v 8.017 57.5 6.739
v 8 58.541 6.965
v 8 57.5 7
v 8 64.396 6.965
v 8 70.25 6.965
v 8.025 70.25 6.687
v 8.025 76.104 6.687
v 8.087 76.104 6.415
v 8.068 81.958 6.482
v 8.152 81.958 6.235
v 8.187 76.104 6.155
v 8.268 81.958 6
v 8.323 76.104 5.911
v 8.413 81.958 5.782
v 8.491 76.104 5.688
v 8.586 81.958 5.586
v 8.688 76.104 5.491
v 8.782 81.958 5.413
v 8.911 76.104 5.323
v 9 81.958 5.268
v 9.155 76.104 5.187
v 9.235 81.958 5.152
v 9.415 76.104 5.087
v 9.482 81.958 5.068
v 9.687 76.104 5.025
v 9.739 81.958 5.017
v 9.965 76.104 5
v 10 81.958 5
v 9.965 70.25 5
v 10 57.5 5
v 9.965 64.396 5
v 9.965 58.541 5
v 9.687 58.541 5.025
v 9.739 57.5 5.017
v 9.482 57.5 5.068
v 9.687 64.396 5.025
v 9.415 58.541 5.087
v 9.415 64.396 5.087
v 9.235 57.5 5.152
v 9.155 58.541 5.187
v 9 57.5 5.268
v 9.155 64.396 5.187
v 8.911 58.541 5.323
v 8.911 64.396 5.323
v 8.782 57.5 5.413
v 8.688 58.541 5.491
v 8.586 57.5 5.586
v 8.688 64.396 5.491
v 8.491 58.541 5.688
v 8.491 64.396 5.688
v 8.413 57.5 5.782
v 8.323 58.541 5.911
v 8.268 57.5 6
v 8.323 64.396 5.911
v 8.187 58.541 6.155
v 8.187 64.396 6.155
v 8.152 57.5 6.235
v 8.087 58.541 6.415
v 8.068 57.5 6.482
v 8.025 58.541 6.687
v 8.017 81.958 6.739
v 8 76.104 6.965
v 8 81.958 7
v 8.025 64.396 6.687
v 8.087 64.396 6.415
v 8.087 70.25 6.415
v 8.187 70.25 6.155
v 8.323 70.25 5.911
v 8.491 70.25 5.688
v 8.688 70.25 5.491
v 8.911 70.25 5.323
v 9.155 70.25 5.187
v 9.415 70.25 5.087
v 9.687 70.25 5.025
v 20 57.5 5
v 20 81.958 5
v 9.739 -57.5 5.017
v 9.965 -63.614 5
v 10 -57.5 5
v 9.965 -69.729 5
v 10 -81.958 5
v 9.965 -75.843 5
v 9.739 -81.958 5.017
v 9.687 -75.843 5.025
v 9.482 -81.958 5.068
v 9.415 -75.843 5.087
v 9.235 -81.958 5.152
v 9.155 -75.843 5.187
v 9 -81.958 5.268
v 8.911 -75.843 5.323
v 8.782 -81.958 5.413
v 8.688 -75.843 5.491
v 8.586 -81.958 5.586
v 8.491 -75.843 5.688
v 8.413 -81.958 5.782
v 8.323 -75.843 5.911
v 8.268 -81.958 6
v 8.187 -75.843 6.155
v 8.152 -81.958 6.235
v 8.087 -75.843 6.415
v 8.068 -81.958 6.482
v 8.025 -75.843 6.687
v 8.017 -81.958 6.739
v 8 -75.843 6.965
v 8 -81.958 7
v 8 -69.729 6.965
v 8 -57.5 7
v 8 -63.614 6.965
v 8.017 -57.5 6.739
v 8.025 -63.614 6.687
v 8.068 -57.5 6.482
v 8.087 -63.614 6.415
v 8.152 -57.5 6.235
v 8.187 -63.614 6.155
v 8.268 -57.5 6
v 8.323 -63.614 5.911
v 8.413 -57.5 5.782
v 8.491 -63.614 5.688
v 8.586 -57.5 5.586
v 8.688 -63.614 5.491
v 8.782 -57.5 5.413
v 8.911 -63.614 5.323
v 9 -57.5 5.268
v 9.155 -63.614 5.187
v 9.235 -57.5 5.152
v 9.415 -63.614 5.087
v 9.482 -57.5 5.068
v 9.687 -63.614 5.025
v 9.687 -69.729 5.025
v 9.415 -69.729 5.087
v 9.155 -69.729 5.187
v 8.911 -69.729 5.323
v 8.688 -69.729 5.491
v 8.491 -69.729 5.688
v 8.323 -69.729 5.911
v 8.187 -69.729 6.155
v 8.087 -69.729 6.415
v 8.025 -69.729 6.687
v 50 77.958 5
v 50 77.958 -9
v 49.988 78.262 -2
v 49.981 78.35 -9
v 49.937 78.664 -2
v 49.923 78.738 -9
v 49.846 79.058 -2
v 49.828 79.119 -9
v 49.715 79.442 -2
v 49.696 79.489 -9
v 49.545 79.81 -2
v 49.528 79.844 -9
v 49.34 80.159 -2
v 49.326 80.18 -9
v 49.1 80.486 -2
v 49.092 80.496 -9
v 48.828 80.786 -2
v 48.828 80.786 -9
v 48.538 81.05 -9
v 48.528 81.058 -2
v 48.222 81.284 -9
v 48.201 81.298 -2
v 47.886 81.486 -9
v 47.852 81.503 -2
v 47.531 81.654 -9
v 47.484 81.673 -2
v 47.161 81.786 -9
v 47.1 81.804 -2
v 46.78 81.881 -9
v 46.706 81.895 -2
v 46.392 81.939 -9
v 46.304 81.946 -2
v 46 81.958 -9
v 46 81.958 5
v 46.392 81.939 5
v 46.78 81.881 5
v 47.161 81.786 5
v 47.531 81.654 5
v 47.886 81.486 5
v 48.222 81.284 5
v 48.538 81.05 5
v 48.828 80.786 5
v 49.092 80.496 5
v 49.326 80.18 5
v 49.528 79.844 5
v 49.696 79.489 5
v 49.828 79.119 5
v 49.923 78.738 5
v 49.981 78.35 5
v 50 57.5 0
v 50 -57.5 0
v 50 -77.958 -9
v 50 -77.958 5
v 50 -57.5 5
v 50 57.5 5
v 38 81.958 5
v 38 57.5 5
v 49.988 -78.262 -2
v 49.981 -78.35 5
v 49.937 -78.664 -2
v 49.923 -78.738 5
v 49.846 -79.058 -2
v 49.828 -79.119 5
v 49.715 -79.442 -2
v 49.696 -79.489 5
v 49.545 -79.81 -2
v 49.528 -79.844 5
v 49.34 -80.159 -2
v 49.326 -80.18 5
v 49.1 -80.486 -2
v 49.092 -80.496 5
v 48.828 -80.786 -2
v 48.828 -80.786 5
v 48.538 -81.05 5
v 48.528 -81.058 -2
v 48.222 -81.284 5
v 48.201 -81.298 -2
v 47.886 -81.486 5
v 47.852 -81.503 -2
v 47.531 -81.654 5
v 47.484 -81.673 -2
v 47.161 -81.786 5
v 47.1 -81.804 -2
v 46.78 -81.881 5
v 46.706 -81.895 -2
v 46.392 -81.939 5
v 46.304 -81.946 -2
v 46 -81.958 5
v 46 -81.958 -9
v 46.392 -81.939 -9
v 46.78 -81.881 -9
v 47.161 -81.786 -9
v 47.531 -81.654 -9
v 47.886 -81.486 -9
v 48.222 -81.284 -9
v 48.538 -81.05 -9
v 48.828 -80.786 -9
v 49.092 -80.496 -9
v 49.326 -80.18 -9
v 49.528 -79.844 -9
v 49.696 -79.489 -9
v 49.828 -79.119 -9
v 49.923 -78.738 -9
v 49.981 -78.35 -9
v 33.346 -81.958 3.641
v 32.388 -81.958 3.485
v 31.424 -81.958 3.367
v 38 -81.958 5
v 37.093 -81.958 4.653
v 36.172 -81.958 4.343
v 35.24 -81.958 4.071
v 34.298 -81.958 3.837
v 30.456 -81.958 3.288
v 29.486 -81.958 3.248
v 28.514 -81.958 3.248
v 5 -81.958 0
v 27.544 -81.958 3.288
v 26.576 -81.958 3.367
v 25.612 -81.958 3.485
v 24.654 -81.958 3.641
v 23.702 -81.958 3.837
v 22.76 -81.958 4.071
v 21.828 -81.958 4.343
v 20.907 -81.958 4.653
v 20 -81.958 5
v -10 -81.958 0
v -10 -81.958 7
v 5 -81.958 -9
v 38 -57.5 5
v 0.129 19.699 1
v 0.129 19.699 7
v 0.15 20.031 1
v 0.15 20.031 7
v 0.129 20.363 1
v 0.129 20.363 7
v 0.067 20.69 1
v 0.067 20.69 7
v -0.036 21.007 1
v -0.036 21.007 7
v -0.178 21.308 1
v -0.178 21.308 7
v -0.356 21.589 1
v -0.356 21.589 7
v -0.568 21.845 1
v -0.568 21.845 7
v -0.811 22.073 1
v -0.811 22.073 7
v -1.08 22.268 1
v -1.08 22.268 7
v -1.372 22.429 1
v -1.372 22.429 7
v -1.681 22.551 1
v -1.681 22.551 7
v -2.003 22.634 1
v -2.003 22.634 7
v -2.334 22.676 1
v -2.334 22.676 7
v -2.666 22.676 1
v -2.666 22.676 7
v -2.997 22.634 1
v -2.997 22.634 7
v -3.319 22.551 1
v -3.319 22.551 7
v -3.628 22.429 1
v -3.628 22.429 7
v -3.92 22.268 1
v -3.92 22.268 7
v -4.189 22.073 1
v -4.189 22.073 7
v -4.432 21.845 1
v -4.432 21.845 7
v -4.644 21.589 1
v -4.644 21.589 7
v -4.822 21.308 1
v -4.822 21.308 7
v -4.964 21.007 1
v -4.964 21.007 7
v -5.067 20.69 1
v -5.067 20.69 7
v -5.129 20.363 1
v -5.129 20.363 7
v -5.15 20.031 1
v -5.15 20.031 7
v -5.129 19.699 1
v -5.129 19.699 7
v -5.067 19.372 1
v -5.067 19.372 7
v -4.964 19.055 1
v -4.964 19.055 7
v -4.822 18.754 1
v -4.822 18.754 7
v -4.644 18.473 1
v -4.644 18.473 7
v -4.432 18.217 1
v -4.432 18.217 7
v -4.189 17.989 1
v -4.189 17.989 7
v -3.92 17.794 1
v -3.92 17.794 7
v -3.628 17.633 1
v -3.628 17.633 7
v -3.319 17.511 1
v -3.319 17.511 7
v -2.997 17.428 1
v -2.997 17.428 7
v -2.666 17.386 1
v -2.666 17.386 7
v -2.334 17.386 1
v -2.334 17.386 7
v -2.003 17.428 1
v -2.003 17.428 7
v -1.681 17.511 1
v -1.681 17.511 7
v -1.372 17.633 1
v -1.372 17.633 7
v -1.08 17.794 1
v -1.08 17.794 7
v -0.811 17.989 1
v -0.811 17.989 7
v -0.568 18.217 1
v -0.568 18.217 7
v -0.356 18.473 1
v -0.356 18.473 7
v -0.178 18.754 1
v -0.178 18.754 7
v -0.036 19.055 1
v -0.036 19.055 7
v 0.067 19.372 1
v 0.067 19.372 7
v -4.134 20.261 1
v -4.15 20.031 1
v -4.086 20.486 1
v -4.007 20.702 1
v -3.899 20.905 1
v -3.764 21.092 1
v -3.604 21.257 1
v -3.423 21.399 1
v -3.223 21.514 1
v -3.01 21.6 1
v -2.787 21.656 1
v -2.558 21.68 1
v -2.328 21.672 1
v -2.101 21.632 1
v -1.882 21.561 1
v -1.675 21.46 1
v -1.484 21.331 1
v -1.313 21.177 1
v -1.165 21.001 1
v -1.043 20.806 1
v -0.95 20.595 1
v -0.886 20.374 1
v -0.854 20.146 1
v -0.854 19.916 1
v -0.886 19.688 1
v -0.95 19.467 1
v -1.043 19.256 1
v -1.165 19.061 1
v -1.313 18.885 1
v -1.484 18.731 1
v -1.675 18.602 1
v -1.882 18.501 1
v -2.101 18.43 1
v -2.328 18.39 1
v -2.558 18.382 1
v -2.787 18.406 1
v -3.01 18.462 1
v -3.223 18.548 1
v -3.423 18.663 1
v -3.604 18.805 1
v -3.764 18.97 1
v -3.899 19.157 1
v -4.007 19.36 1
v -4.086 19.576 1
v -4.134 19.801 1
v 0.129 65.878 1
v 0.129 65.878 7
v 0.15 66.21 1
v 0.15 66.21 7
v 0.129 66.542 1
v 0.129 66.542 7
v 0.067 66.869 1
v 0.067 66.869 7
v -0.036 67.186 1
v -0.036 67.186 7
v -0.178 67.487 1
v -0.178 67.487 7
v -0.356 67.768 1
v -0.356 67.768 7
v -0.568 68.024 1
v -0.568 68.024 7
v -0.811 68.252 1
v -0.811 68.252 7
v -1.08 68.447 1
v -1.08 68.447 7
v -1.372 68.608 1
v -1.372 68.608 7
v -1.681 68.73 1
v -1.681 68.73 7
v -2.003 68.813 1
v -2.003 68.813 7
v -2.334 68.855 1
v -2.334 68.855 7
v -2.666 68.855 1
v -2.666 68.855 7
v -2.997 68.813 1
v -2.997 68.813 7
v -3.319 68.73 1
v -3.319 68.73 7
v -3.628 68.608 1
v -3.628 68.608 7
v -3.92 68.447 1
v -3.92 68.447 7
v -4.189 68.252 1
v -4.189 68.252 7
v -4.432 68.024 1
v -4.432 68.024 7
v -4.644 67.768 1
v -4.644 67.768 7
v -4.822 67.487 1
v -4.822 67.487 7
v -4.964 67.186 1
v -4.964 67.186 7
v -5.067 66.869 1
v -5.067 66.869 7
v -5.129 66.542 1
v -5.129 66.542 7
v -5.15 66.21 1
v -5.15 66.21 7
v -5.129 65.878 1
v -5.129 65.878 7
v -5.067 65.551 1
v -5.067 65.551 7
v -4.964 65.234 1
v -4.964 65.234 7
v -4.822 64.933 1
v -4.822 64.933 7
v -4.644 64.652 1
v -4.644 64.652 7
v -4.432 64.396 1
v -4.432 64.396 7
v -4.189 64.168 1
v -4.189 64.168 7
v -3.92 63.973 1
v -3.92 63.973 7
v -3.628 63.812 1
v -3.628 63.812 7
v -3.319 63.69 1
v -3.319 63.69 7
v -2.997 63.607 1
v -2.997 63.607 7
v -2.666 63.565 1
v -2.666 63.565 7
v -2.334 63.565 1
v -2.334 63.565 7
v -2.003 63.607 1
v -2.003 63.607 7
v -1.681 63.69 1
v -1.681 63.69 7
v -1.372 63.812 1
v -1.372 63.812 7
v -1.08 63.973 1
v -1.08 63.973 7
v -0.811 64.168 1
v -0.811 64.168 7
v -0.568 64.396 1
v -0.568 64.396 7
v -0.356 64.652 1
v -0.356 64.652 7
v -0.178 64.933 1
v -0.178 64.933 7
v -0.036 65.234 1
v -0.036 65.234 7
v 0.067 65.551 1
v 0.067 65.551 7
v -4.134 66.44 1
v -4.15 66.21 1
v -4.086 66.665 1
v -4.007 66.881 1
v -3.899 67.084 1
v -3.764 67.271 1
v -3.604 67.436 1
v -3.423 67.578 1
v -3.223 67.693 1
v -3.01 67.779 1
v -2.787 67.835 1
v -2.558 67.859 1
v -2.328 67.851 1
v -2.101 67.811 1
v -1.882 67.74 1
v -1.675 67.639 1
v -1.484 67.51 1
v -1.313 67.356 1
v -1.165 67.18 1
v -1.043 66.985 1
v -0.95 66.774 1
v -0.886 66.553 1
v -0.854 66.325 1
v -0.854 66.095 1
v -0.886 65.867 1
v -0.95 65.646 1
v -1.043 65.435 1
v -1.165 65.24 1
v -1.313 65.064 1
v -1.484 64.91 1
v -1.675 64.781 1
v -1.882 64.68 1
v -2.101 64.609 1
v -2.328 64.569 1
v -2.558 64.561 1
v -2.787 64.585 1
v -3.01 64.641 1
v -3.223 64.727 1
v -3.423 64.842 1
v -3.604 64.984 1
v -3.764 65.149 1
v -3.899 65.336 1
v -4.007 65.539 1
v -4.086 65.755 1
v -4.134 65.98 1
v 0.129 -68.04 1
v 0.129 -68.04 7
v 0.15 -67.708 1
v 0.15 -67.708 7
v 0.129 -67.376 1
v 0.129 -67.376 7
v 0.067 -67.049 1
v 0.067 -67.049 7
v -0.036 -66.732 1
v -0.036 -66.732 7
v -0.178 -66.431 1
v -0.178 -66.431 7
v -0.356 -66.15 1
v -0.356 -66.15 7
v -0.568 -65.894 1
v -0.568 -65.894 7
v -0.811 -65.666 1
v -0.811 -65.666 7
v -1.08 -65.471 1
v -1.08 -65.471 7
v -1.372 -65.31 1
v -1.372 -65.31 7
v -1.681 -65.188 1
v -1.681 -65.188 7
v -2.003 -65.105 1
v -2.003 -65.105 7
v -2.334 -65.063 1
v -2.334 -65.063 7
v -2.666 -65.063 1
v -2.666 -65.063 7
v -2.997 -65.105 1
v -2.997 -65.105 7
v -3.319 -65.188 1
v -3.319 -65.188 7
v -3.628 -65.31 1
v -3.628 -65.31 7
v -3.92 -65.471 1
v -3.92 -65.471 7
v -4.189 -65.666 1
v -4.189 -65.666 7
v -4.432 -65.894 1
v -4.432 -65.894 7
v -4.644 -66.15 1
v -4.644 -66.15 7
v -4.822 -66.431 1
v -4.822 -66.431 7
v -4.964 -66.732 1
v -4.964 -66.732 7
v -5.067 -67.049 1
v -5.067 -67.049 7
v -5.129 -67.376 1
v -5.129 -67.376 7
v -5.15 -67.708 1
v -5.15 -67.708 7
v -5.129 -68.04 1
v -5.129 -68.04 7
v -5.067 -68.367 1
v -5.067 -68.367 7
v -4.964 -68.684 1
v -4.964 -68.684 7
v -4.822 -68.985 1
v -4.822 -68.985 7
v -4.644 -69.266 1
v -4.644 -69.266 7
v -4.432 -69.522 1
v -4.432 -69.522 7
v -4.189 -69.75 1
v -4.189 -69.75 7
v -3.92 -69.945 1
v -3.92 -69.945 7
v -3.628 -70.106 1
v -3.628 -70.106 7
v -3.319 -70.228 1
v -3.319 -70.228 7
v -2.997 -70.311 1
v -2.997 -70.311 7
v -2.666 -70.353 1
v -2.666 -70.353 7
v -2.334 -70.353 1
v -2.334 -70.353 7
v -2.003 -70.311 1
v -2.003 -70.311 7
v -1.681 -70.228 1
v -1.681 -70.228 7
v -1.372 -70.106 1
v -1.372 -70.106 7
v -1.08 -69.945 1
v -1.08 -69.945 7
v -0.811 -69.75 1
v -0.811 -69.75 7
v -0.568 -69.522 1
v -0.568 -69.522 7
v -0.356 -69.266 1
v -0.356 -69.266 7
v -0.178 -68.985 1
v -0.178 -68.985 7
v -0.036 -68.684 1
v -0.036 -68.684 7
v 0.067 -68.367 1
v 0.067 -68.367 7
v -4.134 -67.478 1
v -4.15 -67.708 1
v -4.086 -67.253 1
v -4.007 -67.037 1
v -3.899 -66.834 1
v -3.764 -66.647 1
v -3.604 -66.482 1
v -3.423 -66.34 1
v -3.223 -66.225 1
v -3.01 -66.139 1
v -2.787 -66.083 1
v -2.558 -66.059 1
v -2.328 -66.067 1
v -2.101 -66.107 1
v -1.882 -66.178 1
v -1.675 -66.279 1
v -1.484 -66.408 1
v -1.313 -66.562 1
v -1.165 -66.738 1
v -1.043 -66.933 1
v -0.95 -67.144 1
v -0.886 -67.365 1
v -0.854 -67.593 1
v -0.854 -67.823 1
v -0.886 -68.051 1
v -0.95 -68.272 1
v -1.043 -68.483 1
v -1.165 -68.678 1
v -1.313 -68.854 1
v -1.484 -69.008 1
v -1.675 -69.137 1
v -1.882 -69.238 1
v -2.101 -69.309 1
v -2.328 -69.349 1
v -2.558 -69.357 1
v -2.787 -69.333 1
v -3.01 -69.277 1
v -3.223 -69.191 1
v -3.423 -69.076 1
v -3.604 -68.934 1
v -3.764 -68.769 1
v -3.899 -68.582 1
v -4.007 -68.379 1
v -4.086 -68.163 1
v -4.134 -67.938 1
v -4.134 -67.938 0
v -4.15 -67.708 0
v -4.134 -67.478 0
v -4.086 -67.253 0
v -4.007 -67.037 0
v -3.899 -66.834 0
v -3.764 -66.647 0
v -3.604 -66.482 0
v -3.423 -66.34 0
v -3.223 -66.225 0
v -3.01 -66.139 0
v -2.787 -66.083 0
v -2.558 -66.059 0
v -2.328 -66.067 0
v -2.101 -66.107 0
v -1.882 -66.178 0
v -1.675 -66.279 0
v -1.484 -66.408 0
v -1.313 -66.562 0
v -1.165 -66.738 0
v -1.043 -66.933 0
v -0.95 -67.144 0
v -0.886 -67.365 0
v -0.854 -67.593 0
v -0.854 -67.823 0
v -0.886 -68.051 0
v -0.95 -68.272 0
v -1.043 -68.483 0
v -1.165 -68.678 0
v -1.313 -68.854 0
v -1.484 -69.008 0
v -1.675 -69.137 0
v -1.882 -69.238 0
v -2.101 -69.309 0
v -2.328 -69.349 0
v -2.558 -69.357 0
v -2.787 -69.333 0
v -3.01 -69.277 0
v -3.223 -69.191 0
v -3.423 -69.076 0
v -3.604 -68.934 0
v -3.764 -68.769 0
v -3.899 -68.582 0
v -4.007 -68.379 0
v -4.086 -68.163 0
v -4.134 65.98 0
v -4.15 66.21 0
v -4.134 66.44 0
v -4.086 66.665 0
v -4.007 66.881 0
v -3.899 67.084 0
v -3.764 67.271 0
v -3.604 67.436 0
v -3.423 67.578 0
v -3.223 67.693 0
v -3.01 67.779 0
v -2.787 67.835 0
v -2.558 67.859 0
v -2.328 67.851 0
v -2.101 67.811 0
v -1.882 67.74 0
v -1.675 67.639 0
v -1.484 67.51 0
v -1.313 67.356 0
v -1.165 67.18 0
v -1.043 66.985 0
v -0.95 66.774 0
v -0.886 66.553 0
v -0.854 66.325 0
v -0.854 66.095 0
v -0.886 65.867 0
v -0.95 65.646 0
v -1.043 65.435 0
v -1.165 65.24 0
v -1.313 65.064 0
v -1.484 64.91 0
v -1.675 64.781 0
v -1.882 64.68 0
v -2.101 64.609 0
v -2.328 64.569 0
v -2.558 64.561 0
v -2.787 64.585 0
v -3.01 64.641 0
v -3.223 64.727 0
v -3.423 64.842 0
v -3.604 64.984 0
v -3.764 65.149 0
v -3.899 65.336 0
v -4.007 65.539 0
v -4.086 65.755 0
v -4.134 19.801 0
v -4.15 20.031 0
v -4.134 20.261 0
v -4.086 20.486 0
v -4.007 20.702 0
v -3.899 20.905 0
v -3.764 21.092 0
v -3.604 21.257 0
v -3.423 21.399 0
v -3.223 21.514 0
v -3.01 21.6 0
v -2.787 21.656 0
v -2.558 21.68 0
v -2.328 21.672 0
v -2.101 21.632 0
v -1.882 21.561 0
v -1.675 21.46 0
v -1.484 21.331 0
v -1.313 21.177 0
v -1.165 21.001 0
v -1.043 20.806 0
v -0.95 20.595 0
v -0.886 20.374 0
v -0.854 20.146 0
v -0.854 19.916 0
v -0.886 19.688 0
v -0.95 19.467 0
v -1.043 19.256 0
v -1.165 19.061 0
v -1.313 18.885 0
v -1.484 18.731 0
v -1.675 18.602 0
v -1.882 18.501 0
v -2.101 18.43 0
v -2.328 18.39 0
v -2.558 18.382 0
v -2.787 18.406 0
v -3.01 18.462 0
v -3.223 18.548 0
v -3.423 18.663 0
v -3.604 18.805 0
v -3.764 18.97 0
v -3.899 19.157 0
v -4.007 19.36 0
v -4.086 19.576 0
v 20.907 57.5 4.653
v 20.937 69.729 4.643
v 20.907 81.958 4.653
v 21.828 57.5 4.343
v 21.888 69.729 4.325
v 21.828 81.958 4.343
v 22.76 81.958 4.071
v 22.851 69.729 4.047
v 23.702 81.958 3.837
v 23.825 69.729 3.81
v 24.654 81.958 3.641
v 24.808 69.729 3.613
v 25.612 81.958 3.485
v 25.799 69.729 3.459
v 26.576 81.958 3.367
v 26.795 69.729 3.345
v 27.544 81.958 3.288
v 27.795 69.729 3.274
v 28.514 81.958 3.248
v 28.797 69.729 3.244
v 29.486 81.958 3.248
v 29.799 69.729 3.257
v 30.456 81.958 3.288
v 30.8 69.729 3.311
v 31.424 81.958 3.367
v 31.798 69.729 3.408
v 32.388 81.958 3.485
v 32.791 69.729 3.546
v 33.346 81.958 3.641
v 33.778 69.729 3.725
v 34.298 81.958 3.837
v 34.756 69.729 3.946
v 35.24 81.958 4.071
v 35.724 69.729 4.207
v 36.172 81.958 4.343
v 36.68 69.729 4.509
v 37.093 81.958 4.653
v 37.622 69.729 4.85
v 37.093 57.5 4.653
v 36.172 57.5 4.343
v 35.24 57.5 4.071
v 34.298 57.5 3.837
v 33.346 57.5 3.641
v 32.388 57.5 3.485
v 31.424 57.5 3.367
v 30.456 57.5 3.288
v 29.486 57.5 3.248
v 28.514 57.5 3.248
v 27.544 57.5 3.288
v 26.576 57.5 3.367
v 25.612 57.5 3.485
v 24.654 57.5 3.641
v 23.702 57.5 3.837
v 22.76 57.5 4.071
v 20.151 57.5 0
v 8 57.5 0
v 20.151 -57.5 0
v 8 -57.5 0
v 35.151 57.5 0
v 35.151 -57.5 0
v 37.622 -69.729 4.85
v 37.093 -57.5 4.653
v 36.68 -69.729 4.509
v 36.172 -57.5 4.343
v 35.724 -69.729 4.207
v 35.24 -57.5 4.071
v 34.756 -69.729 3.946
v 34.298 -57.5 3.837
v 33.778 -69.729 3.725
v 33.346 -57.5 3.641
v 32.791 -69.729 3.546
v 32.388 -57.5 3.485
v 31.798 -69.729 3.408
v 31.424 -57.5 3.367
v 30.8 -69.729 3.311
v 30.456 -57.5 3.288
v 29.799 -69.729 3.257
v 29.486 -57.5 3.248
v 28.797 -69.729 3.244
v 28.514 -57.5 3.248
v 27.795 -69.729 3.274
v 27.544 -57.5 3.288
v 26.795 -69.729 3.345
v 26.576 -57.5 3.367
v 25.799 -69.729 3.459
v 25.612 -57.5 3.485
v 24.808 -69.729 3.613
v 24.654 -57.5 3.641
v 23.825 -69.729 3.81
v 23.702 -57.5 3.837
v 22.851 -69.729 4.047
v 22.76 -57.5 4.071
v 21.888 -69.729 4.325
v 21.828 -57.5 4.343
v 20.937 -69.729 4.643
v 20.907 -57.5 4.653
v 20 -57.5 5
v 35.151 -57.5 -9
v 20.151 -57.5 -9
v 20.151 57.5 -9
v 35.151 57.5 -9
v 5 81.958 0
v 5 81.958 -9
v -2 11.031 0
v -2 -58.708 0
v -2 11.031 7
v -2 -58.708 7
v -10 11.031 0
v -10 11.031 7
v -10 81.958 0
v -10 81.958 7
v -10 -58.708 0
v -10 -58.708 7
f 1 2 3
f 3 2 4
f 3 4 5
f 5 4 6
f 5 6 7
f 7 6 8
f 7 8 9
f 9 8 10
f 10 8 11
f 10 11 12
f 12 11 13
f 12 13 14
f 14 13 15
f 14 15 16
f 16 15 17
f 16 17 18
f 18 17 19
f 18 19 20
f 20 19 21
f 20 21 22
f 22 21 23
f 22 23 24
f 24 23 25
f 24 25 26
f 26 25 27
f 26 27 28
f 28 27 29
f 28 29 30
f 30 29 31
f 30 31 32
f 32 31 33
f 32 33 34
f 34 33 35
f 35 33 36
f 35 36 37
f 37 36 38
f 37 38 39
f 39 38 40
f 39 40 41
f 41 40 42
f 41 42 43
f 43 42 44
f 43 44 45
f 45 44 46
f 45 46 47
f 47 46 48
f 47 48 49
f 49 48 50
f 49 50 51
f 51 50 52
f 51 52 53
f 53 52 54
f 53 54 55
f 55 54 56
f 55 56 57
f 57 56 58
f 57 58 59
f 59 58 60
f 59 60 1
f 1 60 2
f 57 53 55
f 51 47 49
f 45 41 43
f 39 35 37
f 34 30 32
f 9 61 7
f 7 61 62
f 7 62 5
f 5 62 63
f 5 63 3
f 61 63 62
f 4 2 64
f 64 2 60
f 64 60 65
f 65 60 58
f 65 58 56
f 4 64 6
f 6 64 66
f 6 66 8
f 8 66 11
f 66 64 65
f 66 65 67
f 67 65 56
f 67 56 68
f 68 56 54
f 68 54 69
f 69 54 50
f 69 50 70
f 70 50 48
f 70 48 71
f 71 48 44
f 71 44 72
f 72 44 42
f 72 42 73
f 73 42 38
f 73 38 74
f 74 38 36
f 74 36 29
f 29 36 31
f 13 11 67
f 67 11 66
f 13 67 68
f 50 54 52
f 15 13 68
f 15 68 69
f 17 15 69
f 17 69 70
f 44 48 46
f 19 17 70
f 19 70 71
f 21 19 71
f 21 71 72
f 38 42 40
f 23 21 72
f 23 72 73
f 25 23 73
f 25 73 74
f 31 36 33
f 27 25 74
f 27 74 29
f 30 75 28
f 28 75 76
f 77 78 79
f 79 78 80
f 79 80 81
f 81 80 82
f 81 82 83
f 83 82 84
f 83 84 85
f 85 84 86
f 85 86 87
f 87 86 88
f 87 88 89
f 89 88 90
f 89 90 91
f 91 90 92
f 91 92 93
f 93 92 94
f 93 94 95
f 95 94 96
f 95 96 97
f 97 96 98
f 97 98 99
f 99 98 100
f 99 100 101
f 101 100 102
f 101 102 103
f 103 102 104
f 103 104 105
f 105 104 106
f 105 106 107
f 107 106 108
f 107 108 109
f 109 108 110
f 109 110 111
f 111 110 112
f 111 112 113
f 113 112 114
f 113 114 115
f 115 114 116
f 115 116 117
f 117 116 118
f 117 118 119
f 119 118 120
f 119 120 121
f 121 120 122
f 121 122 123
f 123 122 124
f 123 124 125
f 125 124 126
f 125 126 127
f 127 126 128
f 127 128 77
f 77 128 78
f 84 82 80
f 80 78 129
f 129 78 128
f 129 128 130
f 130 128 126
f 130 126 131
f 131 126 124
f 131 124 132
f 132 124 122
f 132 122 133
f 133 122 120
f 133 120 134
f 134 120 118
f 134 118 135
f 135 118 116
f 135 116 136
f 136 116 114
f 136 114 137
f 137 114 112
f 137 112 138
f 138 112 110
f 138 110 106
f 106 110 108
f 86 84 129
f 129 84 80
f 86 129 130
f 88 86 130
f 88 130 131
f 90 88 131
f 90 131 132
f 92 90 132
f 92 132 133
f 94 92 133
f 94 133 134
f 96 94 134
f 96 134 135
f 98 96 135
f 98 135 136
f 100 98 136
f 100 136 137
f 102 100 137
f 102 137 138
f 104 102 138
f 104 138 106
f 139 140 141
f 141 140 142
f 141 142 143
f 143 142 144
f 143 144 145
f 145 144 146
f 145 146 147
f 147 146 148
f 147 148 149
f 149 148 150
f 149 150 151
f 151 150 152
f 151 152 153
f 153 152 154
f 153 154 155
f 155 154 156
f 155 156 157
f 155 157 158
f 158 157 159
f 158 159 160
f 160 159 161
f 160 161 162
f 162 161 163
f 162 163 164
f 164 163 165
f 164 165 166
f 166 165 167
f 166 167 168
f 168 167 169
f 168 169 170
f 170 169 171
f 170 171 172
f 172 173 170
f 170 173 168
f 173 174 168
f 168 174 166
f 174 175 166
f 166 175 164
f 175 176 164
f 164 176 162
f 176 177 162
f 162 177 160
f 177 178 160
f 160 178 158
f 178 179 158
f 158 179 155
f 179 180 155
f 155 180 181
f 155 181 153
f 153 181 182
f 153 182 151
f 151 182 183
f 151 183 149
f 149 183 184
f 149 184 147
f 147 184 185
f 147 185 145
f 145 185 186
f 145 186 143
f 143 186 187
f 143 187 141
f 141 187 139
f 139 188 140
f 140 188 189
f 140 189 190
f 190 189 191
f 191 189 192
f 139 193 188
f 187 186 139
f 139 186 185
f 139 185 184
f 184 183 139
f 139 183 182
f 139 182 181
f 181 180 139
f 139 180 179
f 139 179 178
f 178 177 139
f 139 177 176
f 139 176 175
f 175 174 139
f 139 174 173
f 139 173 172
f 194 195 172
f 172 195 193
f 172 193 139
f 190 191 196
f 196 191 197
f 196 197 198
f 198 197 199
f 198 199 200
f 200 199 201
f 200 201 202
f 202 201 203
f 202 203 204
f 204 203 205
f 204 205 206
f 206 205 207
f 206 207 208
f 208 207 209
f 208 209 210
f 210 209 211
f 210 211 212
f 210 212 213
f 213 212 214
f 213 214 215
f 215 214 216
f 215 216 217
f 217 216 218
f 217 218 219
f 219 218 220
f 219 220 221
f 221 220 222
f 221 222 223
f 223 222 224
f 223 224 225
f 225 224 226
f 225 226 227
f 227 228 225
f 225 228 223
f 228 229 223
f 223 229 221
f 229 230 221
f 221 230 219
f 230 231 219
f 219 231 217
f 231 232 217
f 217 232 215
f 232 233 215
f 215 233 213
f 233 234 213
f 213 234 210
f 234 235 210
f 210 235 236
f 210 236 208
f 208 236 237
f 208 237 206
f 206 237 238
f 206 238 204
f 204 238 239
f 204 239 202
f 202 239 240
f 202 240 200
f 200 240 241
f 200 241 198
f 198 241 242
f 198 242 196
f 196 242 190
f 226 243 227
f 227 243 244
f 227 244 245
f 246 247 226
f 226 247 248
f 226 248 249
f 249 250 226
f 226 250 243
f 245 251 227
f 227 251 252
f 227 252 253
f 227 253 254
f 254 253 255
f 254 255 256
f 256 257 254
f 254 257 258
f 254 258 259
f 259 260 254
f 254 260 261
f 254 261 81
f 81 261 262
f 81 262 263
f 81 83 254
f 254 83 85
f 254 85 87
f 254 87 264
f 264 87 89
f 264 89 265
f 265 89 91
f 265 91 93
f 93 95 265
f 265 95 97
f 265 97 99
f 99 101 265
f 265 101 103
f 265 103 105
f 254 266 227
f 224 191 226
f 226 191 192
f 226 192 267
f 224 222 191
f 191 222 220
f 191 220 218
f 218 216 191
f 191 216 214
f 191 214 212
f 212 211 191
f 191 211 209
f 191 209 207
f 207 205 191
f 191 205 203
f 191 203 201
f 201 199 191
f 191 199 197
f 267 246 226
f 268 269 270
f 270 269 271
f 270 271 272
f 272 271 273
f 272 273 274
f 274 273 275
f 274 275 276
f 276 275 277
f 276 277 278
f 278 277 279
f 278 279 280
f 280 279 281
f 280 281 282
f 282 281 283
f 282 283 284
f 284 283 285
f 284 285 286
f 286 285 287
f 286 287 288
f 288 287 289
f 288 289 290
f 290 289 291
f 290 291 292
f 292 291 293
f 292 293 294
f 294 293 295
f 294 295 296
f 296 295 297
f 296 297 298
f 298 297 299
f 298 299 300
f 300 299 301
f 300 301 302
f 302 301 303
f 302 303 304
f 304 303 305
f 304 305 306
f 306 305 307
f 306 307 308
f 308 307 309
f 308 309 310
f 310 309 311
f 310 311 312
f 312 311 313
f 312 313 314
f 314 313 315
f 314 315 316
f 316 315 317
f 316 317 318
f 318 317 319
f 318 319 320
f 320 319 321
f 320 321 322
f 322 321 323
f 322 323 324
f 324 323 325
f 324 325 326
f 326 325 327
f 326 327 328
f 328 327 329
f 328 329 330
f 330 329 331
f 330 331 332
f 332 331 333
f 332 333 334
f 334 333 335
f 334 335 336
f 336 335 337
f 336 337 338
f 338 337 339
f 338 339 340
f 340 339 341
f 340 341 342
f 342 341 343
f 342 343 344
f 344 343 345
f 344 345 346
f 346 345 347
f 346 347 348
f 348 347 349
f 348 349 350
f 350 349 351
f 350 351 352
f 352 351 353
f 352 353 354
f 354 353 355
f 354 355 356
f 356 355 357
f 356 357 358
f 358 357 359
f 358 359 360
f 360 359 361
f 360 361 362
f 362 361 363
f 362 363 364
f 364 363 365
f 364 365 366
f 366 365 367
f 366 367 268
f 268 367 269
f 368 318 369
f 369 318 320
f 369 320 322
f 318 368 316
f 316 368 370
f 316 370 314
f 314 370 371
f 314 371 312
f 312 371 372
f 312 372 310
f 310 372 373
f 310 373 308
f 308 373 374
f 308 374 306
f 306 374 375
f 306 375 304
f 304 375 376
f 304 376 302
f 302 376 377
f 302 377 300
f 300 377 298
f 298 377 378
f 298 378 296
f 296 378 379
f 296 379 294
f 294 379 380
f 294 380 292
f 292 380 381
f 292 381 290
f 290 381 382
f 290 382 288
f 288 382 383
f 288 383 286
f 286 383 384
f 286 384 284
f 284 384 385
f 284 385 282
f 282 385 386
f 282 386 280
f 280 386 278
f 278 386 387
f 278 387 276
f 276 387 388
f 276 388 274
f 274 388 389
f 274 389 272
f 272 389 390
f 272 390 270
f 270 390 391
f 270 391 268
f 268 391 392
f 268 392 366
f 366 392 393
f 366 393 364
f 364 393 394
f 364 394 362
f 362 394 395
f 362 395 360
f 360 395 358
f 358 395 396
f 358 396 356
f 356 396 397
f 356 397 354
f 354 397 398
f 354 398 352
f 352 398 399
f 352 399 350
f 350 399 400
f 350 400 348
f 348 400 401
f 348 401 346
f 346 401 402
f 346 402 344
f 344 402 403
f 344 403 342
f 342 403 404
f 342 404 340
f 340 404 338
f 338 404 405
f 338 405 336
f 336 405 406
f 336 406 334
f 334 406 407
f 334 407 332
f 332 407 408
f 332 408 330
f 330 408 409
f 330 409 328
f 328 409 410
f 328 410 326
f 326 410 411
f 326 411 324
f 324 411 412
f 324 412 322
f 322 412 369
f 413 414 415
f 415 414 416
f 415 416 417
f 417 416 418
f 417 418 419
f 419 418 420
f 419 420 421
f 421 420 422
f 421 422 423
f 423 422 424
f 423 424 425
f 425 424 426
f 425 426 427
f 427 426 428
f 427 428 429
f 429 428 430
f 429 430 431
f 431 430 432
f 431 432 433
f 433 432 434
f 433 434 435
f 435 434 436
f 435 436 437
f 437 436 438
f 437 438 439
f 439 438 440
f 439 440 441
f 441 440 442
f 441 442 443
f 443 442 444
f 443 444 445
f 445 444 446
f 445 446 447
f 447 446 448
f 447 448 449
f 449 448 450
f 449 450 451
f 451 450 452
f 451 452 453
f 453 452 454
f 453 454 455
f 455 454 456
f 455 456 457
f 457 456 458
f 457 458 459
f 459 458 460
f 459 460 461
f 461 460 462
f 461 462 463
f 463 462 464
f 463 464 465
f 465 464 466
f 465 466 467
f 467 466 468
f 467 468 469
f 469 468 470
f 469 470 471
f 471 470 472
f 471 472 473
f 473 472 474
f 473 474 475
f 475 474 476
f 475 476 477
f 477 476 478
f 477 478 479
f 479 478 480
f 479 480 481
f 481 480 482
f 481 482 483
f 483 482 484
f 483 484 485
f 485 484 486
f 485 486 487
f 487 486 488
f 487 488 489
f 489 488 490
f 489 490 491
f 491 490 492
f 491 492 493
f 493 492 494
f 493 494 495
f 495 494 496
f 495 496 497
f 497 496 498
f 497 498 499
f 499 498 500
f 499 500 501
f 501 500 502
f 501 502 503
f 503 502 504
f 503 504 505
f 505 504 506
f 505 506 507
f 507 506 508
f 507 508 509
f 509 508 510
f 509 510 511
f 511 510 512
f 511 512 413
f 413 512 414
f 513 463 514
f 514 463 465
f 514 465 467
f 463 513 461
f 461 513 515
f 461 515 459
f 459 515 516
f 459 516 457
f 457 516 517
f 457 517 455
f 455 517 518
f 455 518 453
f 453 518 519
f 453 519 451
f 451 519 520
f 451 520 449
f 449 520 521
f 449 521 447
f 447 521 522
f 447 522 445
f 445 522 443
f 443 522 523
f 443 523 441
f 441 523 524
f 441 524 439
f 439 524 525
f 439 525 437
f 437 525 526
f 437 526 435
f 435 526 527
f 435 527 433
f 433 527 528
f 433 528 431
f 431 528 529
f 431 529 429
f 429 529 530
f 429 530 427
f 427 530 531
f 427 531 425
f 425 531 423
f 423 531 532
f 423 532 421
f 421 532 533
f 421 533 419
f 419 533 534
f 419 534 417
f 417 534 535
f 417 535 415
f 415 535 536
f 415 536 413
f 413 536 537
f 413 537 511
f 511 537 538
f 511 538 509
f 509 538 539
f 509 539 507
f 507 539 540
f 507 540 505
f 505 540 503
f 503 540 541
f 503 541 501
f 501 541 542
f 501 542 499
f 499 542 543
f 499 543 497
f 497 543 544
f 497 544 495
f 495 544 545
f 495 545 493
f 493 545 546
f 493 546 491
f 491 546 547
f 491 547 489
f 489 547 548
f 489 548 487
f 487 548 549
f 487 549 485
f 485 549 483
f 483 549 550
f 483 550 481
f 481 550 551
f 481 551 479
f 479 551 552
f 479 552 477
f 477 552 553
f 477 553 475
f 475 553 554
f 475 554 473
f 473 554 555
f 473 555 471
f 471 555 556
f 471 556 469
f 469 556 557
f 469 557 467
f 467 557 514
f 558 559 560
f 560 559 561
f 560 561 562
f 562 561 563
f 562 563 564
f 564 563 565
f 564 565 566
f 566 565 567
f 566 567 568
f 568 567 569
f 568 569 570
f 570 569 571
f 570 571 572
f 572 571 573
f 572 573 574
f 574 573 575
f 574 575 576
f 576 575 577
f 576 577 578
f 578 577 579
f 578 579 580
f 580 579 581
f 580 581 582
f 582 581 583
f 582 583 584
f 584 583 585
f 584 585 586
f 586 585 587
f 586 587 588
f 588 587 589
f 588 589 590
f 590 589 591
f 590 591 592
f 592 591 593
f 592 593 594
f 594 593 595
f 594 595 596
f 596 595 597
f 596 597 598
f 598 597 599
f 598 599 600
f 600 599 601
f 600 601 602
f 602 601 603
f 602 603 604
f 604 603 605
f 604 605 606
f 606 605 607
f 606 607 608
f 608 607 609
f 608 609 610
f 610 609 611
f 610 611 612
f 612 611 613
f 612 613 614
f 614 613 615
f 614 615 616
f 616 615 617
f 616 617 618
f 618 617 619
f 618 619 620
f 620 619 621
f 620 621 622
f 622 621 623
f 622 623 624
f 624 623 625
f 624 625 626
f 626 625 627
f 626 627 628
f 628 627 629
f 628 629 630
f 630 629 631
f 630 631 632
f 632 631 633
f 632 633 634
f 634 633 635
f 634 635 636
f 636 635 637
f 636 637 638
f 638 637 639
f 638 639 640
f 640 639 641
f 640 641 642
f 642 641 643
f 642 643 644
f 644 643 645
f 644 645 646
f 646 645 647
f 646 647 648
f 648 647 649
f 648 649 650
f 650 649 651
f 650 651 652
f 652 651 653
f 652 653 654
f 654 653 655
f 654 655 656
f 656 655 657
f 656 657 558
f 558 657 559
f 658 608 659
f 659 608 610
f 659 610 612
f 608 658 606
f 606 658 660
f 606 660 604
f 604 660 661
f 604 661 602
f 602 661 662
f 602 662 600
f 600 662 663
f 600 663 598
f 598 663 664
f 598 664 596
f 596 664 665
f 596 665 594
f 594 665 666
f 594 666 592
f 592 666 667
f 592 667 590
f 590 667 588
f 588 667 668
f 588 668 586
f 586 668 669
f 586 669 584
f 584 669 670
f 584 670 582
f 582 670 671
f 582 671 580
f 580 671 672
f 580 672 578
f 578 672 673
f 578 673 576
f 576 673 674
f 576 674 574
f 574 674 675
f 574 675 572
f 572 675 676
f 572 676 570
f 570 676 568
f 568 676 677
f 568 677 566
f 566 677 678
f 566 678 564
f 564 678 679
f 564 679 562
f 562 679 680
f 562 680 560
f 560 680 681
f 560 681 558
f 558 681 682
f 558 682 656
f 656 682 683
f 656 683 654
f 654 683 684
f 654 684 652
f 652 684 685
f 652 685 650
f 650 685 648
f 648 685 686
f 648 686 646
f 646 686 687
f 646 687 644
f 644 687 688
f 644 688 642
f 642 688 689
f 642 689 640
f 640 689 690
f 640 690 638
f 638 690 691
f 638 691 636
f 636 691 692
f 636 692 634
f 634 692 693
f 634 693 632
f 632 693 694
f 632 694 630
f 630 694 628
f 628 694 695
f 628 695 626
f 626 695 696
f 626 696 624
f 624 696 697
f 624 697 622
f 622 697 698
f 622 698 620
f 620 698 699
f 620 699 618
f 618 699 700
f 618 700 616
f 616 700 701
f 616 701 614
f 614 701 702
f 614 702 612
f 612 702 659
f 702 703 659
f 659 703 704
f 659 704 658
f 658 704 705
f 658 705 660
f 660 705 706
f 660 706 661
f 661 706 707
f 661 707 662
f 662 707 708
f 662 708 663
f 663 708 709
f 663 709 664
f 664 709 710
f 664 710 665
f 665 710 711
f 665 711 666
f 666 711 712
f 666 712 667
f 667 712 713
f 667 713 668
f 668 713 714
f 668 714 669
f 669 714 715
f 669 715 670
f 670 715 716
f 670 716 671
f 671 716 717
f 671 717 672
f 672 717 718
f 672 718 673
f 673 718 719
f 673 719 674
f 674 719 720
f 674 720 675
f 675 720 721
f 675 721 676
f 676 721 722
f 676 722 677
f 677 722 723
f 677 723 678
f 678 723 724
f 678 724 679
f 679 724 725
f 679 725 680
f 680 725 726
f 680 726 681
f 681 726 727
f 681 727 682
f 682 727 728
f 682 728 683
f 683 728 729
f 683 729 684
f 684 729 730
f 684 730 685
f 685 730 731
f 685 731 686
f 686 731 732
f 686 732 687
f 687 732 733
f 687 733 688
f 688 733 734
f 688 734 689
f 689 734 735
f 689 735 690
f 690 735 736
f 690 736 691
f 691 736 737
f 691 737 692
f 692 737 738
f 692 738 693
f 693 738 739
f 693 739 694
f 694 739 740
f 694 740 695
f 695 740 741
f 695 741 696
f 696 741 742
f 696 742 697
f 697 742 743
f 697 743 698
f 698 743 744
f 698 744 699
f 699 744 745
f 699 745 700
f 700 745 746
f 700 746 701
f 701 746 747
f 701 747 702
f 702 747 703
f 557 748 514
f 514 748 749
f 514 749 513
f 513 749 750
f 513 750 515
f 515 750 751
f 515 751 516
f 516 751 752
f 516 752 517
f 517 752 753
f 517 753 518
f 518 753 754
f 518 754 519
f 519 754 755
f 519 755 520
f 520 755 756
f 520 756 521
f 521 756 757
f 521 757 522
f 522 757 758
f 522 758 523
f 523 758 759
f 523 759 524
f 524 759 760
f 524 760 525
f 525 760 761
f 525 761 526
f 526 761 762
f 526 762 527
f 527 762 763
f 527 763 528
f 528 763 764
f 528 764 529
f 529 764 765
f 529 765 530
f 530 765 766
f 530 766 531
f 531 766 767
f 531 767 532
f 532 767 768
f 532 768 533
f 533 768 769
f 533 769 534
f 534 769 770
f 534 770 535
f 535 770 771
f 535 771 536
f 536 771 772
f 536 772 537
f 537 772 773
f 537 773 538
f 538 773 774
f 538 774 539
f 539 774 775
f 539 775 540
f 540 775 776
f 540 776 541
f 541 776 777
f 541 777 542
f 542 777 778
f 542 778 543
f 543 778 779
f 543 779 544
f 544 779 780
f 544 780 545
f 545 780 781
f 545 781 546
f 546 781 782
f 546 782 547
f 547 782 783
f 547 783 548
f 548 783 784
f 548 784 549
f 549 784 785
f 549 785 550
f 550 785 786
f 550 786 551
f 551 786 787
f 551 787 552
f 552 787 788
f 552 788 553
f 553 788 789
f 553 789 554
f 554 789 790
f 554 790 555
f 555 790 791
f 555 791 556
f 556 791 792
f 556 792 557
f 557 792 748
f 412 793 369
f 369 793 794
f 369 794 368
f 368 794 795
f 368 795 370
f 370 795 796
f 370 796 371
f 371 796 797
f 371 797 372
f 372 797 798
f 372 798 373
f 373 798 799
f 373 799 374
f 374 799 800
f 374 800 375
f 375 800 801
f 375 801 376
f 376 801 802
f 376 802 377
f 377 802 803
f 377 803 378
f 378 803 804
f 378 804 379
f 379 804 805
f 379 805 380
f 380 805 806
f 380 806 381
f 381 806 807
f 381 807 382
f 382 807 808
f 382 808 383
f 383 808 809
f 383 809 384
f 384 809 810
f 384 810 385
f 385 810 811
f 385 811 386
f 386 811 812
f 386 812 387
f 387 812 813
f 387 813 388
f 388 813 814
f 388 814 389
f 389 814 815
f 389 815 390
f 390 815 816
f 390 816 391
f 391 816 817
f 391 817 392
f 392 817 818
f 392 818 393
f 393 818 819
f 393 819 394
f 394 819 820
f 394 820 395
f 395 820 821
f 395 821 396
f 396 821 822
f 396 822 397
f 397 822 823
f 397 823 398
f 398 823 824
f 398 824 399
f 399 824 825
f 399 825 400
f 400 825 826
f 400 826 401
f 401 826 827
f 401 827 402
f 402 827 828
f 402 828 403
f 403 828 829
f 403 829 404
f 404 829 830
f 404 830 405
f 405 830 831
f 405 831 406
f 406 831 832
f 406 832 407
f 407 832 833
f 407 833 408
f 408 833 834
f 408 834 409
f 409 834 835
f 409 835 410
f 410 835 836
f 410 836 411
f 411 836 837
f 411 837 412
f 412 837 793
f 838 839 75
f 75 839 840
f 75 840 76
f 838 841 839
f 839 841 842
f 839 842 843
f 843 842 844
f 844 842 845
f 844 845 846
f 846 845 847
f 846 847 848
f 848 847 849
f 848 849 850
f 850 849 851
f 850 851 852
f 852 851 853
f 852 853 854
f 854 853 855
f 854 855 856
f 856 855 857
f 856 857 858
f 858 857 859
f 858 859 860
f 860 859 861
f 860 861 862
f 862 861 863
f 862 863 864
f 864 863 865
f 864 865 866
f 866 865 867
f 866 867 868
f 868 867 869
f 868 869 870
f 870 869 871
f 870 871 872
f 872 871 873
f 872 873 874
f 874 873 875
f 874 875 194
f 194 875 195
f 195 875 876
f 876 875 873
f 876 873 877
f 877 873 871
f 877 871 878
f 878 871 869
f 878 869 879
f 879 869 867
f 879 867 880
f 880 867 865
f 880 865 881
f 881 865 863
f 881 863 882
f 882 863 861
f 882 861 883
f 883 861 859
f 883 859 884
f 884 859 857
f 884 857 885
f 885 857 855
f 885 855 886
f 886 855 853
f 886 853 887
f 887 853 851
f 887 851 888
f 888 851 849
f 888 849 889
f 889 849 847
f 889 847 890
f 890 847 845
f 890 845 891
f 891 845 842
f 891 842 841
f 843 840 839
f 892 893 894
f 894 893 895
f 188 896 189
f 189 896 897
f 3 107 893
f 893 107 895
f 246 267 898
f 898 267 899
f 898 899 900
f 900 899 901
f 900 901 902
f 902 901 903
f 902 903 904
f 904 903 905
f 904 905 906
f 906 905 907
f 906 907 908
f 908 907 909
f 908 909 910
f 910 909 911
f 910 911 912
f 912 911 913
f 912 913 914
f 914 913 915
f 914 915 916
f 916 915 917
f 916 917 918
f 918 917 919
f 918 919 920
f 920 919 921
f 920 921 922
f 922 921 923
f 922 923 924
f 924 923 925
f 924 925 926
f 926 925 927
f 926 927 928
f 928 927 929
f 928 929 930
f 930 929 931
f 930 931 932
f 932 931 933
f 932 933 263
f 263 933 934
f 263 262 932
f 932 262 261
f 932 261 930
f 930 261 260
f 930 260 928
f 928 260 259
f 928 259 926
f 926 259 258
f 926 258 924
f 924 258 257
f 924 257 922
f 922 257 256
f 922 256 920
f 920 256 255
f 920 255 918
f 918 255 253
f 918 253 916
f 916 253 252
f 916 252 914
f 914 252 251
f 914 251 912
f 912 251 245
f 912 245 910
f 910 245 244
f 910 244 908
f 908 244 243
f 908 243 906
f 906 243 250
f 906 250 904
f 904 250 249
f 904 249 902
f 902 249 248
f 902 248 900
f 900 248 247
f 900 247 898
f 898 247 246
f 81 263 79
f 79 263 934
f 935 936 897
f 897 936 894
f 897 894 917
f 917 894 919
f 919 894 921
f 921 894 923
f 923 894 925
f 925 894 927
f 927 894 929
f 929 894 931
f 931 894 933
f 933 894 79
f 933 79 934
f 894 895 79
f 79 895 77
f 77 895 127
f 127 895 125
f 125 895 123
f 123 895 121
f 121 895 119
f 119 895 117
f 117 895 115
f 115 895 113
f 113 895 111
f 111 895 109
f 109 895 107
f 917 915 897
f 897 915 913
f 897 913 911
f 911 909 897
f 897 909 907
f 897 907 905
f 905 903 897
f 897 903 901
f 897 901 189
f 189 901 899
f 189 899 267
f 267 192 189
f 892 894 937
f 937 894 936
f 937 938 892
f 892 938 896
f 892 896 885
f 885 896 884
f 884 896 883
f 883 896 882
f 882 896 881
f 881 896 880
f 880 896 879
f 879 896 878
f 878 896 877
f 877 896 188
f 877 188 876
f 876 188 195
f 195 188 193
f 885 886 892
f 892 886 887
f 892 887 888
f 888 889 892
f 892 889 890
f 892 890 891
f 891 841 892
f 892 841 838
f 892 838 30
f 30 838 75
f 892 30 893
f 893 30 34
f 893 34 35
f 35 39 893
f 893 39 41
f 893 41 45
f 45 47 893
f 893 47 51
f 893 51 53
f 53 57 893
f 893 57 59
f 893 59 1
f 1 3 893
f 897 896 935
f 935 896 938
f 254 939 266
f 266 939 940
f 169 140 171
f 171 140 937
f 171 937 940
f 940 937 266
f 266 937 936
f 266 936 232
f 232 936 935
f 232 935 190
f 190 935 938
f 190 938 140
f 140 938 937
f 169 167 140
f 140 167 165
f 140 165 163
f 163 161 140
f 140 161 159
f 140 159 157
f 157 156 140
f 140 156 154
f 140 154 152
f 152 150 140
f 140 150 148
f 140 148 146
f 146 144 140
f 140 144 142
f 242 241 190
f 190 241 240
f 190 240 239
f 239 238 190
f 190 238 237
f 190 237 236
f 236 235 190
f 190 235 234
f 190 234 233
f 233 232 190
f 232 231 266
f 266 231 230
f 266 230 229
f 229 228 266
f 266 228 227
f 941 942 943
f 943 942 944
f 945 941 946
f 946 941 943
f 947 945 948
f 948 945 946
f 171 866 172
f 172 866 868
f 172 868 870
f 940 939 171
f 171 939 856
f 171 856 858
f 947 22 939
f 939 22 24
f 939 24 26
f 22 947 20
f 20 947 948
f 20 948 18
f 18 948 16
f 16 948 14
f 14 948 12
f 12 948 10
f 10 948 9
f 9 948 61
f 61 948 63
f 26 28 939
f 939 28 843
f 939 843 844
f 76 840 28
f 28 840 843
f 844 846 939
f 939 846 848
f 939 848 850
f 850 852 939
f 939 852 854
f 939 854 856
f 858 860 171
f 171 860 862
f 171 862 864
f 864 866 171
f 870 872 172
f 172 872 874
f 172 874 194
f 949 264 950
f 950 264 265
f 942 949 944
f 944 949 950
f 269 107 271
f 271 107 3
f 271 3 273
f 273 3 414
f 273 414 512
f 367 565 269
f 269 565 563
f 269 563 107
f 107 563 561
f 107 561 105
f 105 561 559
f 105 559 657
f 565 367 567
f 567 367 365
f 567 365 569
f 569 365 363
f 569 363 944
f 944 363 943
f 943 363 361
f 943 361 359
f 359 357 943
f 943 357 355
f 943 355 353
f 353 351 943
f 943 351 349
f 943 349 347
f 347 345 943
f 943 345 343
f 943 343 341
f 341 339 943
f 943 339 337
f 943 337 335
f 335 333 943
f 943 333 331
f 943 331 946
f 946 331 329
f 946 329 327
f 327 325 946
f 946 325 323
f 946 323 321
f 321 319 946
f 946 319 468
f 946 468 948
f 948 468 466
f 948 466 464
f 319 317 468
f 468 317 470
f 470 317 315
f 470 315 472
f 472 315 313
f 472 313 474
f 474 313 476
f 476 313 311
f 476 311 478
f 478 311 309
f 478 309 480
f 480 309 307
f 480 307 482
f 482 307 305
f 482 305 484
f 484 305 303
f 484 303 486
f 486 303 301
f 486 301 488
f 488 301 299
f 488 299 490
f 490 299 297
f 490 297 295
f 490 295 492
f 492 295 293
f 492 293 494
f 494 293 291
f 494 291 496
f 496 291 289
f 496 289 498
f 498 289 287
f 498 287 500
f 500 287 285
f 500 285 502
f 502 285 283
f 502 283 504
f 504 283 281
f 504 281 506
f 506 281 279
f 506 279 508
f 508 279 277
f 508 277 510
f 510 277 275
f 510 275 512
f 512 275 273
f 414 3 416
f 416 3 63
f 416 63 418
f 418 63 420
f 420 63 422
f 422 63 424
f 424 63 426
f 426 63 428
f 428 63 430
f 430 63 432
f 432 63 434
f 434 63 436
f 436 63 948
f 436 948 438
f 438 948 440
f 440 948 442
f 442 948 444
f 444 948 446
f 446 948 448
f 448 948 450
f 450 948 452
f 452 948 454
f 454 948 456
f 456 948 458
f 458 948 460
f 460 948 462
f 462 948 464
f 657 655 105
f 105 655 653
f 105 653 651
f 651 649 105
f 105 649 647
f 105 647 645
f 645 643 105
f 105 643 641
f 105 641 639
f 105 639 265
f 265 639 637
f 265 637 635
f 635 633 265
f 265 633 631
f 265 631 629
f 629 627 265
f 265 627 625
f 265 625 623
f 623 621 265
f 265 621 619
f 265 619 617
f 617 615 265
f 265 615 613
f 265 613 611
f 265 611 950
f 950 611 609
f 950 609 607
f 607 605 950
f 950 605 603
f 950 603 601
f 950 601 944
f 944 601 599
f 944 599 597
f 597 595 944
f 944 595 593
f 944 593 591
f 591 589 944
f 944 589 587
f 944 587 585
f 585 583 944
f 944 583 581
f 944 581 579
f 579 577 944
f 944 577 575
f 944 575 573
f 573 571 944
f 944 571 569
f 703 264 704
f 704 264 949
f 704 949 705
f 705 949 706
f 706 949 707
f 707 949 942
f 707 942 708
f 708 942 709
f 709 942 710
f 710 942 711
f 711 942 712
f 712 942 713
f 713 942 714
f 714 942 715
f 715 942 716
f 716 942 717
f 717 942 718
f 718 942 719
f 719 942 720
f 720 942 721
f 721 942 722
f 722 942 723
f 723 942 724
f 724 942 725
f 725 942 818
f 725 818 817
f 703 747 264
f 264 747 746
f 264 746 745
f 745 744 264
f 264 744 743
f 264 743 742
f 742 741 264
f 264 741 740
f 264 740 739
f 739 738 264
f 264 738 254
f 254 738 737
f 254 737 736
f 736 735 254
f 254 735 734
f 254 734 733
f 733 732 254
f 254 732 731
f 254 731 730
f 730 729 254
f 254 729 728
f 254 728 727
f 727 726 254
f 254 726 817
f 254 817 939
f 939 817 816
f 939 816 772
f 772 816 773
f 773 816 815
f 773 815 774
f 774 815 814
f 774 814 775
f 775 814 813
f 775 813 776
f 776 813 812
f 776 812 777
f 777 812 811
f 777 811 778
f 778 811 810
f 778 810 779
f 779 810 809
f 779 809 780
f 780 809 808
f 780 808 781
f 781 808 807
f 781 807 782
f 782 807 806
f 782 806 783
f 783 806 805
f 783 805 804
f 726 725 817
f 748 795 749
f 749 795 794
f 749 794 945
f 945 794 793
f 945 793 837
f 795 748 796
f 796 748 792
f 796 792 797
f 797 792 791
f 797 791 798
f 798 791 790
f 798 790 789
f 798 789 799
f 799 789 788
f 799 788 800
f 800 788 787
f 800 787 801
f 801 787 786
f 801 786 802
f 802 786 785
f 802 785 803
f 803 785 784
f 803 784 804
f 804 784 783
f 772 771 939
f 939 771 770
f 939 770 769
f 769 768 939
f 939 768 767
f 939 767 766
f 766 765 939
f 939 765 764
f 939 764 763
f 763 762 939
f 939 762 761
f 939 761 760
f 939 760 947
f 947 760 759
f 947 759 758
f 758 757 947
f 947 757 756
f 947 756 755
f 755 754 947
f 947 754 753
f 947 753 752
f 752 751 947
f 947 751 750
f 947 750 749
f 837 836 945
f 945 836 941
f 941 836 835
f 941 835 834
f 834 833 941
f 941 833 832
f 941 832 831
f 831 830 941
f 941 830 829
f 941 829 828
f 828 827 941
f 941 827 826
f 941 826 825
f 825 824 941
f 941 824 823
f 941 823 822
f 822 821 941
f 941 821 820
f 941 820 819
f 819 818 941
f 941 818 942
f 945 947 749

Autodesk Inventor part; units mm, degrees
ref_plane "YZ Plane" through (0, 0, 0) normal (1, 0, 0) x (0, 1, 0)
ref_plane "XZ Plane" through (0, 0, 0) normal (0, 1, 0) x (-1, 0, 0)
ref_plane "XY Plane" through (0, 0, 0) normal (0, 0, 1) x (1, 0, 0)
sketch "Sketch1" plane through (0, 0, 0) normal (0, 0, 1) x (1, 0, 0)
  line L0 (0, 0) -> (0, 81.958)
  line L1 (0, 0) -> (0, -81.958)
  line L2 (0, -81.958) -> (-10, -81.958)
  line L3 (-5, -81.958) -> (-5, -67.708) construction
  line L4 (-5, -67.708) -> (-5, -58.708) construction
  line L5 (-10, -81.958) -> (-10, -58.708)
  line L6 (-10, -58.708) -> (0, -58.708)
  line L7 (0, 81.958) -> (-10, 81.958)
  line L8 (-5, 81.958) -> (-5, 66.21) construction
  line L9 (-5, 66.21) -> (-5, 20.031) construction
  line L10 (-5, 20.031) -> (-5, 11.031) construction
  line L11 (-10, 81.958) -> (-10, 11.031)
  line L12 (-10, 11.031) -> (0, 11.031)
  line L13 (0, -58.708) -> (-2, -58.708)
  line L14 (-2, -58.708) -> (-2, 11.031)
  line L15 (0, -81.958) -> (8, -81.958)
  line L16 (8, -81.958) -> (8, 81.958)
  line L17 (8, 81.958) -> (0, 81.958)
  line L18 (0, 81.958) -> (0, -81.958)
  dimension "d0" = 81.958
  dimension "d2" = 163.916
  dimension "d3" = 10
  dimension "d4" = 14.25
  dimension "d5" = 9
  dimension "d6" = 15.748
  dimension "d7" = 46.179
  dimension "d8" = 9
  dimension "d9" = 2
  dimension "d10" = 8
extrude "Extrusion1" add sketch "Sketch1" along normal blind 7
sketch "Sketch2" plane through (0, 0, 0) normal (0, 0, -1) x (-1, 0, 0)
  line L0 (10, 81.958) -> (10, 11.031) construction
  line L1 (10, 46.4945) -> (-5, 46.4945) construction
  line L2 (-50, 81.958) -> (-50, -81.958)
  line L3 (-35.1508, -57.5) -> (-20.1508, -57.5)
  line L4 (-20.1508, -57.5) -> (-20.1508, 57.5)
  line L5 (-20.1508, 57.5) -> (-35.1508, 57.5)
  line L6 (-35.1508, 57.5) -> (-35.1508, -57.5)
  line L7 (-35.1508, -57.5) -> (-20.1508, 57.5) construction
  line L8 (-20.1508, -57.5) -> (-35.1508, 57.5) construction
  line L9 (-5, -81.958) -> (-5, 81.958)
  line L10 (-50, -81.958) -> (-5, -81.958)
  line L11 (10, -81.958) -> (-8, -81.958) projected
  line L12 (-50, 81.958) -> (-5, 81.958)
  line L13 (-8, 81.958) -> (10, 81.958) projected
  point P0 (0, 0)
  point P1 (-27.6508, 0)
  dimension "d13" = 15
  dimension "d15" = 15
  dimension "d16" = 115
extrude "Extrusion2" add sketch "Sketch2" along normal blind 9
sketch "Sketch3" plane through (-10, -81.958, 7) normal (0, -1, 0) x (1, 0, 0)
  line L0 (18, -7) -> (60, -7) projected
  line L1 (60, -7) -> (18, -7)
  line L2 (18, -7) -> (18, -2)
  line L3 (18, -7) -> (18, 0) projected
  line L4 (18, -2) -> (60, -2)
  line L5 (60, -2) -> (60, -7)
  line L6 (18, -2) -> (30, -2) construction
  line L7 (60, -2) -> (48, -2) construction
  arc A0 (30, -2) -> (48, -2) centre (39, 20.1797) ccw
  dimension "d34" = 5
  dimension "d35" = 12
  dimension "d36" = 12
extrude "Extrusion3" add sketch "Sketch3" against normal up to surface (24.458 mm away) contours L2 L4 A0 L5 L0
mirror "Mirror1" about plane through (0, 0, 0) normal (0, 1, 0) of "Extrusion3"
sketch "Sketch4" plane through (0, 0, 7) normal (0, 0, 1) x (1, 0, 0)
  line L0 (-5, -81.958) -> (-5, -67.708) construction
  line L1 (-5, 81.958) -> (-5, 66.21) construction
  line L2 (-5, 66.21) -> (-5, 20.031) construction
  line L3 (-10, -58.708) -> (-10, -81.958) construction
  line L4 (-10, -70.333) -> (5, -70.333) construction
  line L5 (5, 81.958) -> (5, -81.958) construction
  circle A0 centre (-2.5, -67.708) radius 1.65
  circle A1 centre (-2.5, 20.031) radius 1.65
  circle A2 centre (-2.5, 66.21) radius 1.65
  point P0 (0, 0)
  dimension "d22" = 14.25
  dimension "d23" = 46.179
  dimension "d24" = 15.748
  dimension "d31" = 15
  dimension "d32" = 3.3
extrude "Extrusion4" cut sketch "Sketch4" against normal up to surface (7 mm away)
sketch "Sketch5" plane through (0, 0, 7) normal (0, 0, 1) x (1, 0, 0)
  circle A0 centre (-2.5, -67.708) radius 1.65 projected
  circle A1 centre (-2.5, -67.708) radius 2.65
  circle A2 centre (-2.5, 20.031) radius 1.65 projected
  circle A3 centre (-2.5, 20.031) radius 2.65
  circle A4 centre (-2.5, 66.21) radius 1.65 projected
  circle A5 centre (-2.5, 66.21) radius 2.65
  dimension "d33" = 5.3
extrude "Extrusion5" cut sketch "Sketch5" against normal blind 6 contours A0 | A1 | A2 | A3 | A4 | A5
fillet "Fillet1" radius 4 2 edges at (50, -81.958, -2) (50, 81.958, -2)
fillet "Fillet2" radius 2 2 edges at (8, -69.729, 5) (8, 69.729, 5)
properties part number "Base Extension 2"
